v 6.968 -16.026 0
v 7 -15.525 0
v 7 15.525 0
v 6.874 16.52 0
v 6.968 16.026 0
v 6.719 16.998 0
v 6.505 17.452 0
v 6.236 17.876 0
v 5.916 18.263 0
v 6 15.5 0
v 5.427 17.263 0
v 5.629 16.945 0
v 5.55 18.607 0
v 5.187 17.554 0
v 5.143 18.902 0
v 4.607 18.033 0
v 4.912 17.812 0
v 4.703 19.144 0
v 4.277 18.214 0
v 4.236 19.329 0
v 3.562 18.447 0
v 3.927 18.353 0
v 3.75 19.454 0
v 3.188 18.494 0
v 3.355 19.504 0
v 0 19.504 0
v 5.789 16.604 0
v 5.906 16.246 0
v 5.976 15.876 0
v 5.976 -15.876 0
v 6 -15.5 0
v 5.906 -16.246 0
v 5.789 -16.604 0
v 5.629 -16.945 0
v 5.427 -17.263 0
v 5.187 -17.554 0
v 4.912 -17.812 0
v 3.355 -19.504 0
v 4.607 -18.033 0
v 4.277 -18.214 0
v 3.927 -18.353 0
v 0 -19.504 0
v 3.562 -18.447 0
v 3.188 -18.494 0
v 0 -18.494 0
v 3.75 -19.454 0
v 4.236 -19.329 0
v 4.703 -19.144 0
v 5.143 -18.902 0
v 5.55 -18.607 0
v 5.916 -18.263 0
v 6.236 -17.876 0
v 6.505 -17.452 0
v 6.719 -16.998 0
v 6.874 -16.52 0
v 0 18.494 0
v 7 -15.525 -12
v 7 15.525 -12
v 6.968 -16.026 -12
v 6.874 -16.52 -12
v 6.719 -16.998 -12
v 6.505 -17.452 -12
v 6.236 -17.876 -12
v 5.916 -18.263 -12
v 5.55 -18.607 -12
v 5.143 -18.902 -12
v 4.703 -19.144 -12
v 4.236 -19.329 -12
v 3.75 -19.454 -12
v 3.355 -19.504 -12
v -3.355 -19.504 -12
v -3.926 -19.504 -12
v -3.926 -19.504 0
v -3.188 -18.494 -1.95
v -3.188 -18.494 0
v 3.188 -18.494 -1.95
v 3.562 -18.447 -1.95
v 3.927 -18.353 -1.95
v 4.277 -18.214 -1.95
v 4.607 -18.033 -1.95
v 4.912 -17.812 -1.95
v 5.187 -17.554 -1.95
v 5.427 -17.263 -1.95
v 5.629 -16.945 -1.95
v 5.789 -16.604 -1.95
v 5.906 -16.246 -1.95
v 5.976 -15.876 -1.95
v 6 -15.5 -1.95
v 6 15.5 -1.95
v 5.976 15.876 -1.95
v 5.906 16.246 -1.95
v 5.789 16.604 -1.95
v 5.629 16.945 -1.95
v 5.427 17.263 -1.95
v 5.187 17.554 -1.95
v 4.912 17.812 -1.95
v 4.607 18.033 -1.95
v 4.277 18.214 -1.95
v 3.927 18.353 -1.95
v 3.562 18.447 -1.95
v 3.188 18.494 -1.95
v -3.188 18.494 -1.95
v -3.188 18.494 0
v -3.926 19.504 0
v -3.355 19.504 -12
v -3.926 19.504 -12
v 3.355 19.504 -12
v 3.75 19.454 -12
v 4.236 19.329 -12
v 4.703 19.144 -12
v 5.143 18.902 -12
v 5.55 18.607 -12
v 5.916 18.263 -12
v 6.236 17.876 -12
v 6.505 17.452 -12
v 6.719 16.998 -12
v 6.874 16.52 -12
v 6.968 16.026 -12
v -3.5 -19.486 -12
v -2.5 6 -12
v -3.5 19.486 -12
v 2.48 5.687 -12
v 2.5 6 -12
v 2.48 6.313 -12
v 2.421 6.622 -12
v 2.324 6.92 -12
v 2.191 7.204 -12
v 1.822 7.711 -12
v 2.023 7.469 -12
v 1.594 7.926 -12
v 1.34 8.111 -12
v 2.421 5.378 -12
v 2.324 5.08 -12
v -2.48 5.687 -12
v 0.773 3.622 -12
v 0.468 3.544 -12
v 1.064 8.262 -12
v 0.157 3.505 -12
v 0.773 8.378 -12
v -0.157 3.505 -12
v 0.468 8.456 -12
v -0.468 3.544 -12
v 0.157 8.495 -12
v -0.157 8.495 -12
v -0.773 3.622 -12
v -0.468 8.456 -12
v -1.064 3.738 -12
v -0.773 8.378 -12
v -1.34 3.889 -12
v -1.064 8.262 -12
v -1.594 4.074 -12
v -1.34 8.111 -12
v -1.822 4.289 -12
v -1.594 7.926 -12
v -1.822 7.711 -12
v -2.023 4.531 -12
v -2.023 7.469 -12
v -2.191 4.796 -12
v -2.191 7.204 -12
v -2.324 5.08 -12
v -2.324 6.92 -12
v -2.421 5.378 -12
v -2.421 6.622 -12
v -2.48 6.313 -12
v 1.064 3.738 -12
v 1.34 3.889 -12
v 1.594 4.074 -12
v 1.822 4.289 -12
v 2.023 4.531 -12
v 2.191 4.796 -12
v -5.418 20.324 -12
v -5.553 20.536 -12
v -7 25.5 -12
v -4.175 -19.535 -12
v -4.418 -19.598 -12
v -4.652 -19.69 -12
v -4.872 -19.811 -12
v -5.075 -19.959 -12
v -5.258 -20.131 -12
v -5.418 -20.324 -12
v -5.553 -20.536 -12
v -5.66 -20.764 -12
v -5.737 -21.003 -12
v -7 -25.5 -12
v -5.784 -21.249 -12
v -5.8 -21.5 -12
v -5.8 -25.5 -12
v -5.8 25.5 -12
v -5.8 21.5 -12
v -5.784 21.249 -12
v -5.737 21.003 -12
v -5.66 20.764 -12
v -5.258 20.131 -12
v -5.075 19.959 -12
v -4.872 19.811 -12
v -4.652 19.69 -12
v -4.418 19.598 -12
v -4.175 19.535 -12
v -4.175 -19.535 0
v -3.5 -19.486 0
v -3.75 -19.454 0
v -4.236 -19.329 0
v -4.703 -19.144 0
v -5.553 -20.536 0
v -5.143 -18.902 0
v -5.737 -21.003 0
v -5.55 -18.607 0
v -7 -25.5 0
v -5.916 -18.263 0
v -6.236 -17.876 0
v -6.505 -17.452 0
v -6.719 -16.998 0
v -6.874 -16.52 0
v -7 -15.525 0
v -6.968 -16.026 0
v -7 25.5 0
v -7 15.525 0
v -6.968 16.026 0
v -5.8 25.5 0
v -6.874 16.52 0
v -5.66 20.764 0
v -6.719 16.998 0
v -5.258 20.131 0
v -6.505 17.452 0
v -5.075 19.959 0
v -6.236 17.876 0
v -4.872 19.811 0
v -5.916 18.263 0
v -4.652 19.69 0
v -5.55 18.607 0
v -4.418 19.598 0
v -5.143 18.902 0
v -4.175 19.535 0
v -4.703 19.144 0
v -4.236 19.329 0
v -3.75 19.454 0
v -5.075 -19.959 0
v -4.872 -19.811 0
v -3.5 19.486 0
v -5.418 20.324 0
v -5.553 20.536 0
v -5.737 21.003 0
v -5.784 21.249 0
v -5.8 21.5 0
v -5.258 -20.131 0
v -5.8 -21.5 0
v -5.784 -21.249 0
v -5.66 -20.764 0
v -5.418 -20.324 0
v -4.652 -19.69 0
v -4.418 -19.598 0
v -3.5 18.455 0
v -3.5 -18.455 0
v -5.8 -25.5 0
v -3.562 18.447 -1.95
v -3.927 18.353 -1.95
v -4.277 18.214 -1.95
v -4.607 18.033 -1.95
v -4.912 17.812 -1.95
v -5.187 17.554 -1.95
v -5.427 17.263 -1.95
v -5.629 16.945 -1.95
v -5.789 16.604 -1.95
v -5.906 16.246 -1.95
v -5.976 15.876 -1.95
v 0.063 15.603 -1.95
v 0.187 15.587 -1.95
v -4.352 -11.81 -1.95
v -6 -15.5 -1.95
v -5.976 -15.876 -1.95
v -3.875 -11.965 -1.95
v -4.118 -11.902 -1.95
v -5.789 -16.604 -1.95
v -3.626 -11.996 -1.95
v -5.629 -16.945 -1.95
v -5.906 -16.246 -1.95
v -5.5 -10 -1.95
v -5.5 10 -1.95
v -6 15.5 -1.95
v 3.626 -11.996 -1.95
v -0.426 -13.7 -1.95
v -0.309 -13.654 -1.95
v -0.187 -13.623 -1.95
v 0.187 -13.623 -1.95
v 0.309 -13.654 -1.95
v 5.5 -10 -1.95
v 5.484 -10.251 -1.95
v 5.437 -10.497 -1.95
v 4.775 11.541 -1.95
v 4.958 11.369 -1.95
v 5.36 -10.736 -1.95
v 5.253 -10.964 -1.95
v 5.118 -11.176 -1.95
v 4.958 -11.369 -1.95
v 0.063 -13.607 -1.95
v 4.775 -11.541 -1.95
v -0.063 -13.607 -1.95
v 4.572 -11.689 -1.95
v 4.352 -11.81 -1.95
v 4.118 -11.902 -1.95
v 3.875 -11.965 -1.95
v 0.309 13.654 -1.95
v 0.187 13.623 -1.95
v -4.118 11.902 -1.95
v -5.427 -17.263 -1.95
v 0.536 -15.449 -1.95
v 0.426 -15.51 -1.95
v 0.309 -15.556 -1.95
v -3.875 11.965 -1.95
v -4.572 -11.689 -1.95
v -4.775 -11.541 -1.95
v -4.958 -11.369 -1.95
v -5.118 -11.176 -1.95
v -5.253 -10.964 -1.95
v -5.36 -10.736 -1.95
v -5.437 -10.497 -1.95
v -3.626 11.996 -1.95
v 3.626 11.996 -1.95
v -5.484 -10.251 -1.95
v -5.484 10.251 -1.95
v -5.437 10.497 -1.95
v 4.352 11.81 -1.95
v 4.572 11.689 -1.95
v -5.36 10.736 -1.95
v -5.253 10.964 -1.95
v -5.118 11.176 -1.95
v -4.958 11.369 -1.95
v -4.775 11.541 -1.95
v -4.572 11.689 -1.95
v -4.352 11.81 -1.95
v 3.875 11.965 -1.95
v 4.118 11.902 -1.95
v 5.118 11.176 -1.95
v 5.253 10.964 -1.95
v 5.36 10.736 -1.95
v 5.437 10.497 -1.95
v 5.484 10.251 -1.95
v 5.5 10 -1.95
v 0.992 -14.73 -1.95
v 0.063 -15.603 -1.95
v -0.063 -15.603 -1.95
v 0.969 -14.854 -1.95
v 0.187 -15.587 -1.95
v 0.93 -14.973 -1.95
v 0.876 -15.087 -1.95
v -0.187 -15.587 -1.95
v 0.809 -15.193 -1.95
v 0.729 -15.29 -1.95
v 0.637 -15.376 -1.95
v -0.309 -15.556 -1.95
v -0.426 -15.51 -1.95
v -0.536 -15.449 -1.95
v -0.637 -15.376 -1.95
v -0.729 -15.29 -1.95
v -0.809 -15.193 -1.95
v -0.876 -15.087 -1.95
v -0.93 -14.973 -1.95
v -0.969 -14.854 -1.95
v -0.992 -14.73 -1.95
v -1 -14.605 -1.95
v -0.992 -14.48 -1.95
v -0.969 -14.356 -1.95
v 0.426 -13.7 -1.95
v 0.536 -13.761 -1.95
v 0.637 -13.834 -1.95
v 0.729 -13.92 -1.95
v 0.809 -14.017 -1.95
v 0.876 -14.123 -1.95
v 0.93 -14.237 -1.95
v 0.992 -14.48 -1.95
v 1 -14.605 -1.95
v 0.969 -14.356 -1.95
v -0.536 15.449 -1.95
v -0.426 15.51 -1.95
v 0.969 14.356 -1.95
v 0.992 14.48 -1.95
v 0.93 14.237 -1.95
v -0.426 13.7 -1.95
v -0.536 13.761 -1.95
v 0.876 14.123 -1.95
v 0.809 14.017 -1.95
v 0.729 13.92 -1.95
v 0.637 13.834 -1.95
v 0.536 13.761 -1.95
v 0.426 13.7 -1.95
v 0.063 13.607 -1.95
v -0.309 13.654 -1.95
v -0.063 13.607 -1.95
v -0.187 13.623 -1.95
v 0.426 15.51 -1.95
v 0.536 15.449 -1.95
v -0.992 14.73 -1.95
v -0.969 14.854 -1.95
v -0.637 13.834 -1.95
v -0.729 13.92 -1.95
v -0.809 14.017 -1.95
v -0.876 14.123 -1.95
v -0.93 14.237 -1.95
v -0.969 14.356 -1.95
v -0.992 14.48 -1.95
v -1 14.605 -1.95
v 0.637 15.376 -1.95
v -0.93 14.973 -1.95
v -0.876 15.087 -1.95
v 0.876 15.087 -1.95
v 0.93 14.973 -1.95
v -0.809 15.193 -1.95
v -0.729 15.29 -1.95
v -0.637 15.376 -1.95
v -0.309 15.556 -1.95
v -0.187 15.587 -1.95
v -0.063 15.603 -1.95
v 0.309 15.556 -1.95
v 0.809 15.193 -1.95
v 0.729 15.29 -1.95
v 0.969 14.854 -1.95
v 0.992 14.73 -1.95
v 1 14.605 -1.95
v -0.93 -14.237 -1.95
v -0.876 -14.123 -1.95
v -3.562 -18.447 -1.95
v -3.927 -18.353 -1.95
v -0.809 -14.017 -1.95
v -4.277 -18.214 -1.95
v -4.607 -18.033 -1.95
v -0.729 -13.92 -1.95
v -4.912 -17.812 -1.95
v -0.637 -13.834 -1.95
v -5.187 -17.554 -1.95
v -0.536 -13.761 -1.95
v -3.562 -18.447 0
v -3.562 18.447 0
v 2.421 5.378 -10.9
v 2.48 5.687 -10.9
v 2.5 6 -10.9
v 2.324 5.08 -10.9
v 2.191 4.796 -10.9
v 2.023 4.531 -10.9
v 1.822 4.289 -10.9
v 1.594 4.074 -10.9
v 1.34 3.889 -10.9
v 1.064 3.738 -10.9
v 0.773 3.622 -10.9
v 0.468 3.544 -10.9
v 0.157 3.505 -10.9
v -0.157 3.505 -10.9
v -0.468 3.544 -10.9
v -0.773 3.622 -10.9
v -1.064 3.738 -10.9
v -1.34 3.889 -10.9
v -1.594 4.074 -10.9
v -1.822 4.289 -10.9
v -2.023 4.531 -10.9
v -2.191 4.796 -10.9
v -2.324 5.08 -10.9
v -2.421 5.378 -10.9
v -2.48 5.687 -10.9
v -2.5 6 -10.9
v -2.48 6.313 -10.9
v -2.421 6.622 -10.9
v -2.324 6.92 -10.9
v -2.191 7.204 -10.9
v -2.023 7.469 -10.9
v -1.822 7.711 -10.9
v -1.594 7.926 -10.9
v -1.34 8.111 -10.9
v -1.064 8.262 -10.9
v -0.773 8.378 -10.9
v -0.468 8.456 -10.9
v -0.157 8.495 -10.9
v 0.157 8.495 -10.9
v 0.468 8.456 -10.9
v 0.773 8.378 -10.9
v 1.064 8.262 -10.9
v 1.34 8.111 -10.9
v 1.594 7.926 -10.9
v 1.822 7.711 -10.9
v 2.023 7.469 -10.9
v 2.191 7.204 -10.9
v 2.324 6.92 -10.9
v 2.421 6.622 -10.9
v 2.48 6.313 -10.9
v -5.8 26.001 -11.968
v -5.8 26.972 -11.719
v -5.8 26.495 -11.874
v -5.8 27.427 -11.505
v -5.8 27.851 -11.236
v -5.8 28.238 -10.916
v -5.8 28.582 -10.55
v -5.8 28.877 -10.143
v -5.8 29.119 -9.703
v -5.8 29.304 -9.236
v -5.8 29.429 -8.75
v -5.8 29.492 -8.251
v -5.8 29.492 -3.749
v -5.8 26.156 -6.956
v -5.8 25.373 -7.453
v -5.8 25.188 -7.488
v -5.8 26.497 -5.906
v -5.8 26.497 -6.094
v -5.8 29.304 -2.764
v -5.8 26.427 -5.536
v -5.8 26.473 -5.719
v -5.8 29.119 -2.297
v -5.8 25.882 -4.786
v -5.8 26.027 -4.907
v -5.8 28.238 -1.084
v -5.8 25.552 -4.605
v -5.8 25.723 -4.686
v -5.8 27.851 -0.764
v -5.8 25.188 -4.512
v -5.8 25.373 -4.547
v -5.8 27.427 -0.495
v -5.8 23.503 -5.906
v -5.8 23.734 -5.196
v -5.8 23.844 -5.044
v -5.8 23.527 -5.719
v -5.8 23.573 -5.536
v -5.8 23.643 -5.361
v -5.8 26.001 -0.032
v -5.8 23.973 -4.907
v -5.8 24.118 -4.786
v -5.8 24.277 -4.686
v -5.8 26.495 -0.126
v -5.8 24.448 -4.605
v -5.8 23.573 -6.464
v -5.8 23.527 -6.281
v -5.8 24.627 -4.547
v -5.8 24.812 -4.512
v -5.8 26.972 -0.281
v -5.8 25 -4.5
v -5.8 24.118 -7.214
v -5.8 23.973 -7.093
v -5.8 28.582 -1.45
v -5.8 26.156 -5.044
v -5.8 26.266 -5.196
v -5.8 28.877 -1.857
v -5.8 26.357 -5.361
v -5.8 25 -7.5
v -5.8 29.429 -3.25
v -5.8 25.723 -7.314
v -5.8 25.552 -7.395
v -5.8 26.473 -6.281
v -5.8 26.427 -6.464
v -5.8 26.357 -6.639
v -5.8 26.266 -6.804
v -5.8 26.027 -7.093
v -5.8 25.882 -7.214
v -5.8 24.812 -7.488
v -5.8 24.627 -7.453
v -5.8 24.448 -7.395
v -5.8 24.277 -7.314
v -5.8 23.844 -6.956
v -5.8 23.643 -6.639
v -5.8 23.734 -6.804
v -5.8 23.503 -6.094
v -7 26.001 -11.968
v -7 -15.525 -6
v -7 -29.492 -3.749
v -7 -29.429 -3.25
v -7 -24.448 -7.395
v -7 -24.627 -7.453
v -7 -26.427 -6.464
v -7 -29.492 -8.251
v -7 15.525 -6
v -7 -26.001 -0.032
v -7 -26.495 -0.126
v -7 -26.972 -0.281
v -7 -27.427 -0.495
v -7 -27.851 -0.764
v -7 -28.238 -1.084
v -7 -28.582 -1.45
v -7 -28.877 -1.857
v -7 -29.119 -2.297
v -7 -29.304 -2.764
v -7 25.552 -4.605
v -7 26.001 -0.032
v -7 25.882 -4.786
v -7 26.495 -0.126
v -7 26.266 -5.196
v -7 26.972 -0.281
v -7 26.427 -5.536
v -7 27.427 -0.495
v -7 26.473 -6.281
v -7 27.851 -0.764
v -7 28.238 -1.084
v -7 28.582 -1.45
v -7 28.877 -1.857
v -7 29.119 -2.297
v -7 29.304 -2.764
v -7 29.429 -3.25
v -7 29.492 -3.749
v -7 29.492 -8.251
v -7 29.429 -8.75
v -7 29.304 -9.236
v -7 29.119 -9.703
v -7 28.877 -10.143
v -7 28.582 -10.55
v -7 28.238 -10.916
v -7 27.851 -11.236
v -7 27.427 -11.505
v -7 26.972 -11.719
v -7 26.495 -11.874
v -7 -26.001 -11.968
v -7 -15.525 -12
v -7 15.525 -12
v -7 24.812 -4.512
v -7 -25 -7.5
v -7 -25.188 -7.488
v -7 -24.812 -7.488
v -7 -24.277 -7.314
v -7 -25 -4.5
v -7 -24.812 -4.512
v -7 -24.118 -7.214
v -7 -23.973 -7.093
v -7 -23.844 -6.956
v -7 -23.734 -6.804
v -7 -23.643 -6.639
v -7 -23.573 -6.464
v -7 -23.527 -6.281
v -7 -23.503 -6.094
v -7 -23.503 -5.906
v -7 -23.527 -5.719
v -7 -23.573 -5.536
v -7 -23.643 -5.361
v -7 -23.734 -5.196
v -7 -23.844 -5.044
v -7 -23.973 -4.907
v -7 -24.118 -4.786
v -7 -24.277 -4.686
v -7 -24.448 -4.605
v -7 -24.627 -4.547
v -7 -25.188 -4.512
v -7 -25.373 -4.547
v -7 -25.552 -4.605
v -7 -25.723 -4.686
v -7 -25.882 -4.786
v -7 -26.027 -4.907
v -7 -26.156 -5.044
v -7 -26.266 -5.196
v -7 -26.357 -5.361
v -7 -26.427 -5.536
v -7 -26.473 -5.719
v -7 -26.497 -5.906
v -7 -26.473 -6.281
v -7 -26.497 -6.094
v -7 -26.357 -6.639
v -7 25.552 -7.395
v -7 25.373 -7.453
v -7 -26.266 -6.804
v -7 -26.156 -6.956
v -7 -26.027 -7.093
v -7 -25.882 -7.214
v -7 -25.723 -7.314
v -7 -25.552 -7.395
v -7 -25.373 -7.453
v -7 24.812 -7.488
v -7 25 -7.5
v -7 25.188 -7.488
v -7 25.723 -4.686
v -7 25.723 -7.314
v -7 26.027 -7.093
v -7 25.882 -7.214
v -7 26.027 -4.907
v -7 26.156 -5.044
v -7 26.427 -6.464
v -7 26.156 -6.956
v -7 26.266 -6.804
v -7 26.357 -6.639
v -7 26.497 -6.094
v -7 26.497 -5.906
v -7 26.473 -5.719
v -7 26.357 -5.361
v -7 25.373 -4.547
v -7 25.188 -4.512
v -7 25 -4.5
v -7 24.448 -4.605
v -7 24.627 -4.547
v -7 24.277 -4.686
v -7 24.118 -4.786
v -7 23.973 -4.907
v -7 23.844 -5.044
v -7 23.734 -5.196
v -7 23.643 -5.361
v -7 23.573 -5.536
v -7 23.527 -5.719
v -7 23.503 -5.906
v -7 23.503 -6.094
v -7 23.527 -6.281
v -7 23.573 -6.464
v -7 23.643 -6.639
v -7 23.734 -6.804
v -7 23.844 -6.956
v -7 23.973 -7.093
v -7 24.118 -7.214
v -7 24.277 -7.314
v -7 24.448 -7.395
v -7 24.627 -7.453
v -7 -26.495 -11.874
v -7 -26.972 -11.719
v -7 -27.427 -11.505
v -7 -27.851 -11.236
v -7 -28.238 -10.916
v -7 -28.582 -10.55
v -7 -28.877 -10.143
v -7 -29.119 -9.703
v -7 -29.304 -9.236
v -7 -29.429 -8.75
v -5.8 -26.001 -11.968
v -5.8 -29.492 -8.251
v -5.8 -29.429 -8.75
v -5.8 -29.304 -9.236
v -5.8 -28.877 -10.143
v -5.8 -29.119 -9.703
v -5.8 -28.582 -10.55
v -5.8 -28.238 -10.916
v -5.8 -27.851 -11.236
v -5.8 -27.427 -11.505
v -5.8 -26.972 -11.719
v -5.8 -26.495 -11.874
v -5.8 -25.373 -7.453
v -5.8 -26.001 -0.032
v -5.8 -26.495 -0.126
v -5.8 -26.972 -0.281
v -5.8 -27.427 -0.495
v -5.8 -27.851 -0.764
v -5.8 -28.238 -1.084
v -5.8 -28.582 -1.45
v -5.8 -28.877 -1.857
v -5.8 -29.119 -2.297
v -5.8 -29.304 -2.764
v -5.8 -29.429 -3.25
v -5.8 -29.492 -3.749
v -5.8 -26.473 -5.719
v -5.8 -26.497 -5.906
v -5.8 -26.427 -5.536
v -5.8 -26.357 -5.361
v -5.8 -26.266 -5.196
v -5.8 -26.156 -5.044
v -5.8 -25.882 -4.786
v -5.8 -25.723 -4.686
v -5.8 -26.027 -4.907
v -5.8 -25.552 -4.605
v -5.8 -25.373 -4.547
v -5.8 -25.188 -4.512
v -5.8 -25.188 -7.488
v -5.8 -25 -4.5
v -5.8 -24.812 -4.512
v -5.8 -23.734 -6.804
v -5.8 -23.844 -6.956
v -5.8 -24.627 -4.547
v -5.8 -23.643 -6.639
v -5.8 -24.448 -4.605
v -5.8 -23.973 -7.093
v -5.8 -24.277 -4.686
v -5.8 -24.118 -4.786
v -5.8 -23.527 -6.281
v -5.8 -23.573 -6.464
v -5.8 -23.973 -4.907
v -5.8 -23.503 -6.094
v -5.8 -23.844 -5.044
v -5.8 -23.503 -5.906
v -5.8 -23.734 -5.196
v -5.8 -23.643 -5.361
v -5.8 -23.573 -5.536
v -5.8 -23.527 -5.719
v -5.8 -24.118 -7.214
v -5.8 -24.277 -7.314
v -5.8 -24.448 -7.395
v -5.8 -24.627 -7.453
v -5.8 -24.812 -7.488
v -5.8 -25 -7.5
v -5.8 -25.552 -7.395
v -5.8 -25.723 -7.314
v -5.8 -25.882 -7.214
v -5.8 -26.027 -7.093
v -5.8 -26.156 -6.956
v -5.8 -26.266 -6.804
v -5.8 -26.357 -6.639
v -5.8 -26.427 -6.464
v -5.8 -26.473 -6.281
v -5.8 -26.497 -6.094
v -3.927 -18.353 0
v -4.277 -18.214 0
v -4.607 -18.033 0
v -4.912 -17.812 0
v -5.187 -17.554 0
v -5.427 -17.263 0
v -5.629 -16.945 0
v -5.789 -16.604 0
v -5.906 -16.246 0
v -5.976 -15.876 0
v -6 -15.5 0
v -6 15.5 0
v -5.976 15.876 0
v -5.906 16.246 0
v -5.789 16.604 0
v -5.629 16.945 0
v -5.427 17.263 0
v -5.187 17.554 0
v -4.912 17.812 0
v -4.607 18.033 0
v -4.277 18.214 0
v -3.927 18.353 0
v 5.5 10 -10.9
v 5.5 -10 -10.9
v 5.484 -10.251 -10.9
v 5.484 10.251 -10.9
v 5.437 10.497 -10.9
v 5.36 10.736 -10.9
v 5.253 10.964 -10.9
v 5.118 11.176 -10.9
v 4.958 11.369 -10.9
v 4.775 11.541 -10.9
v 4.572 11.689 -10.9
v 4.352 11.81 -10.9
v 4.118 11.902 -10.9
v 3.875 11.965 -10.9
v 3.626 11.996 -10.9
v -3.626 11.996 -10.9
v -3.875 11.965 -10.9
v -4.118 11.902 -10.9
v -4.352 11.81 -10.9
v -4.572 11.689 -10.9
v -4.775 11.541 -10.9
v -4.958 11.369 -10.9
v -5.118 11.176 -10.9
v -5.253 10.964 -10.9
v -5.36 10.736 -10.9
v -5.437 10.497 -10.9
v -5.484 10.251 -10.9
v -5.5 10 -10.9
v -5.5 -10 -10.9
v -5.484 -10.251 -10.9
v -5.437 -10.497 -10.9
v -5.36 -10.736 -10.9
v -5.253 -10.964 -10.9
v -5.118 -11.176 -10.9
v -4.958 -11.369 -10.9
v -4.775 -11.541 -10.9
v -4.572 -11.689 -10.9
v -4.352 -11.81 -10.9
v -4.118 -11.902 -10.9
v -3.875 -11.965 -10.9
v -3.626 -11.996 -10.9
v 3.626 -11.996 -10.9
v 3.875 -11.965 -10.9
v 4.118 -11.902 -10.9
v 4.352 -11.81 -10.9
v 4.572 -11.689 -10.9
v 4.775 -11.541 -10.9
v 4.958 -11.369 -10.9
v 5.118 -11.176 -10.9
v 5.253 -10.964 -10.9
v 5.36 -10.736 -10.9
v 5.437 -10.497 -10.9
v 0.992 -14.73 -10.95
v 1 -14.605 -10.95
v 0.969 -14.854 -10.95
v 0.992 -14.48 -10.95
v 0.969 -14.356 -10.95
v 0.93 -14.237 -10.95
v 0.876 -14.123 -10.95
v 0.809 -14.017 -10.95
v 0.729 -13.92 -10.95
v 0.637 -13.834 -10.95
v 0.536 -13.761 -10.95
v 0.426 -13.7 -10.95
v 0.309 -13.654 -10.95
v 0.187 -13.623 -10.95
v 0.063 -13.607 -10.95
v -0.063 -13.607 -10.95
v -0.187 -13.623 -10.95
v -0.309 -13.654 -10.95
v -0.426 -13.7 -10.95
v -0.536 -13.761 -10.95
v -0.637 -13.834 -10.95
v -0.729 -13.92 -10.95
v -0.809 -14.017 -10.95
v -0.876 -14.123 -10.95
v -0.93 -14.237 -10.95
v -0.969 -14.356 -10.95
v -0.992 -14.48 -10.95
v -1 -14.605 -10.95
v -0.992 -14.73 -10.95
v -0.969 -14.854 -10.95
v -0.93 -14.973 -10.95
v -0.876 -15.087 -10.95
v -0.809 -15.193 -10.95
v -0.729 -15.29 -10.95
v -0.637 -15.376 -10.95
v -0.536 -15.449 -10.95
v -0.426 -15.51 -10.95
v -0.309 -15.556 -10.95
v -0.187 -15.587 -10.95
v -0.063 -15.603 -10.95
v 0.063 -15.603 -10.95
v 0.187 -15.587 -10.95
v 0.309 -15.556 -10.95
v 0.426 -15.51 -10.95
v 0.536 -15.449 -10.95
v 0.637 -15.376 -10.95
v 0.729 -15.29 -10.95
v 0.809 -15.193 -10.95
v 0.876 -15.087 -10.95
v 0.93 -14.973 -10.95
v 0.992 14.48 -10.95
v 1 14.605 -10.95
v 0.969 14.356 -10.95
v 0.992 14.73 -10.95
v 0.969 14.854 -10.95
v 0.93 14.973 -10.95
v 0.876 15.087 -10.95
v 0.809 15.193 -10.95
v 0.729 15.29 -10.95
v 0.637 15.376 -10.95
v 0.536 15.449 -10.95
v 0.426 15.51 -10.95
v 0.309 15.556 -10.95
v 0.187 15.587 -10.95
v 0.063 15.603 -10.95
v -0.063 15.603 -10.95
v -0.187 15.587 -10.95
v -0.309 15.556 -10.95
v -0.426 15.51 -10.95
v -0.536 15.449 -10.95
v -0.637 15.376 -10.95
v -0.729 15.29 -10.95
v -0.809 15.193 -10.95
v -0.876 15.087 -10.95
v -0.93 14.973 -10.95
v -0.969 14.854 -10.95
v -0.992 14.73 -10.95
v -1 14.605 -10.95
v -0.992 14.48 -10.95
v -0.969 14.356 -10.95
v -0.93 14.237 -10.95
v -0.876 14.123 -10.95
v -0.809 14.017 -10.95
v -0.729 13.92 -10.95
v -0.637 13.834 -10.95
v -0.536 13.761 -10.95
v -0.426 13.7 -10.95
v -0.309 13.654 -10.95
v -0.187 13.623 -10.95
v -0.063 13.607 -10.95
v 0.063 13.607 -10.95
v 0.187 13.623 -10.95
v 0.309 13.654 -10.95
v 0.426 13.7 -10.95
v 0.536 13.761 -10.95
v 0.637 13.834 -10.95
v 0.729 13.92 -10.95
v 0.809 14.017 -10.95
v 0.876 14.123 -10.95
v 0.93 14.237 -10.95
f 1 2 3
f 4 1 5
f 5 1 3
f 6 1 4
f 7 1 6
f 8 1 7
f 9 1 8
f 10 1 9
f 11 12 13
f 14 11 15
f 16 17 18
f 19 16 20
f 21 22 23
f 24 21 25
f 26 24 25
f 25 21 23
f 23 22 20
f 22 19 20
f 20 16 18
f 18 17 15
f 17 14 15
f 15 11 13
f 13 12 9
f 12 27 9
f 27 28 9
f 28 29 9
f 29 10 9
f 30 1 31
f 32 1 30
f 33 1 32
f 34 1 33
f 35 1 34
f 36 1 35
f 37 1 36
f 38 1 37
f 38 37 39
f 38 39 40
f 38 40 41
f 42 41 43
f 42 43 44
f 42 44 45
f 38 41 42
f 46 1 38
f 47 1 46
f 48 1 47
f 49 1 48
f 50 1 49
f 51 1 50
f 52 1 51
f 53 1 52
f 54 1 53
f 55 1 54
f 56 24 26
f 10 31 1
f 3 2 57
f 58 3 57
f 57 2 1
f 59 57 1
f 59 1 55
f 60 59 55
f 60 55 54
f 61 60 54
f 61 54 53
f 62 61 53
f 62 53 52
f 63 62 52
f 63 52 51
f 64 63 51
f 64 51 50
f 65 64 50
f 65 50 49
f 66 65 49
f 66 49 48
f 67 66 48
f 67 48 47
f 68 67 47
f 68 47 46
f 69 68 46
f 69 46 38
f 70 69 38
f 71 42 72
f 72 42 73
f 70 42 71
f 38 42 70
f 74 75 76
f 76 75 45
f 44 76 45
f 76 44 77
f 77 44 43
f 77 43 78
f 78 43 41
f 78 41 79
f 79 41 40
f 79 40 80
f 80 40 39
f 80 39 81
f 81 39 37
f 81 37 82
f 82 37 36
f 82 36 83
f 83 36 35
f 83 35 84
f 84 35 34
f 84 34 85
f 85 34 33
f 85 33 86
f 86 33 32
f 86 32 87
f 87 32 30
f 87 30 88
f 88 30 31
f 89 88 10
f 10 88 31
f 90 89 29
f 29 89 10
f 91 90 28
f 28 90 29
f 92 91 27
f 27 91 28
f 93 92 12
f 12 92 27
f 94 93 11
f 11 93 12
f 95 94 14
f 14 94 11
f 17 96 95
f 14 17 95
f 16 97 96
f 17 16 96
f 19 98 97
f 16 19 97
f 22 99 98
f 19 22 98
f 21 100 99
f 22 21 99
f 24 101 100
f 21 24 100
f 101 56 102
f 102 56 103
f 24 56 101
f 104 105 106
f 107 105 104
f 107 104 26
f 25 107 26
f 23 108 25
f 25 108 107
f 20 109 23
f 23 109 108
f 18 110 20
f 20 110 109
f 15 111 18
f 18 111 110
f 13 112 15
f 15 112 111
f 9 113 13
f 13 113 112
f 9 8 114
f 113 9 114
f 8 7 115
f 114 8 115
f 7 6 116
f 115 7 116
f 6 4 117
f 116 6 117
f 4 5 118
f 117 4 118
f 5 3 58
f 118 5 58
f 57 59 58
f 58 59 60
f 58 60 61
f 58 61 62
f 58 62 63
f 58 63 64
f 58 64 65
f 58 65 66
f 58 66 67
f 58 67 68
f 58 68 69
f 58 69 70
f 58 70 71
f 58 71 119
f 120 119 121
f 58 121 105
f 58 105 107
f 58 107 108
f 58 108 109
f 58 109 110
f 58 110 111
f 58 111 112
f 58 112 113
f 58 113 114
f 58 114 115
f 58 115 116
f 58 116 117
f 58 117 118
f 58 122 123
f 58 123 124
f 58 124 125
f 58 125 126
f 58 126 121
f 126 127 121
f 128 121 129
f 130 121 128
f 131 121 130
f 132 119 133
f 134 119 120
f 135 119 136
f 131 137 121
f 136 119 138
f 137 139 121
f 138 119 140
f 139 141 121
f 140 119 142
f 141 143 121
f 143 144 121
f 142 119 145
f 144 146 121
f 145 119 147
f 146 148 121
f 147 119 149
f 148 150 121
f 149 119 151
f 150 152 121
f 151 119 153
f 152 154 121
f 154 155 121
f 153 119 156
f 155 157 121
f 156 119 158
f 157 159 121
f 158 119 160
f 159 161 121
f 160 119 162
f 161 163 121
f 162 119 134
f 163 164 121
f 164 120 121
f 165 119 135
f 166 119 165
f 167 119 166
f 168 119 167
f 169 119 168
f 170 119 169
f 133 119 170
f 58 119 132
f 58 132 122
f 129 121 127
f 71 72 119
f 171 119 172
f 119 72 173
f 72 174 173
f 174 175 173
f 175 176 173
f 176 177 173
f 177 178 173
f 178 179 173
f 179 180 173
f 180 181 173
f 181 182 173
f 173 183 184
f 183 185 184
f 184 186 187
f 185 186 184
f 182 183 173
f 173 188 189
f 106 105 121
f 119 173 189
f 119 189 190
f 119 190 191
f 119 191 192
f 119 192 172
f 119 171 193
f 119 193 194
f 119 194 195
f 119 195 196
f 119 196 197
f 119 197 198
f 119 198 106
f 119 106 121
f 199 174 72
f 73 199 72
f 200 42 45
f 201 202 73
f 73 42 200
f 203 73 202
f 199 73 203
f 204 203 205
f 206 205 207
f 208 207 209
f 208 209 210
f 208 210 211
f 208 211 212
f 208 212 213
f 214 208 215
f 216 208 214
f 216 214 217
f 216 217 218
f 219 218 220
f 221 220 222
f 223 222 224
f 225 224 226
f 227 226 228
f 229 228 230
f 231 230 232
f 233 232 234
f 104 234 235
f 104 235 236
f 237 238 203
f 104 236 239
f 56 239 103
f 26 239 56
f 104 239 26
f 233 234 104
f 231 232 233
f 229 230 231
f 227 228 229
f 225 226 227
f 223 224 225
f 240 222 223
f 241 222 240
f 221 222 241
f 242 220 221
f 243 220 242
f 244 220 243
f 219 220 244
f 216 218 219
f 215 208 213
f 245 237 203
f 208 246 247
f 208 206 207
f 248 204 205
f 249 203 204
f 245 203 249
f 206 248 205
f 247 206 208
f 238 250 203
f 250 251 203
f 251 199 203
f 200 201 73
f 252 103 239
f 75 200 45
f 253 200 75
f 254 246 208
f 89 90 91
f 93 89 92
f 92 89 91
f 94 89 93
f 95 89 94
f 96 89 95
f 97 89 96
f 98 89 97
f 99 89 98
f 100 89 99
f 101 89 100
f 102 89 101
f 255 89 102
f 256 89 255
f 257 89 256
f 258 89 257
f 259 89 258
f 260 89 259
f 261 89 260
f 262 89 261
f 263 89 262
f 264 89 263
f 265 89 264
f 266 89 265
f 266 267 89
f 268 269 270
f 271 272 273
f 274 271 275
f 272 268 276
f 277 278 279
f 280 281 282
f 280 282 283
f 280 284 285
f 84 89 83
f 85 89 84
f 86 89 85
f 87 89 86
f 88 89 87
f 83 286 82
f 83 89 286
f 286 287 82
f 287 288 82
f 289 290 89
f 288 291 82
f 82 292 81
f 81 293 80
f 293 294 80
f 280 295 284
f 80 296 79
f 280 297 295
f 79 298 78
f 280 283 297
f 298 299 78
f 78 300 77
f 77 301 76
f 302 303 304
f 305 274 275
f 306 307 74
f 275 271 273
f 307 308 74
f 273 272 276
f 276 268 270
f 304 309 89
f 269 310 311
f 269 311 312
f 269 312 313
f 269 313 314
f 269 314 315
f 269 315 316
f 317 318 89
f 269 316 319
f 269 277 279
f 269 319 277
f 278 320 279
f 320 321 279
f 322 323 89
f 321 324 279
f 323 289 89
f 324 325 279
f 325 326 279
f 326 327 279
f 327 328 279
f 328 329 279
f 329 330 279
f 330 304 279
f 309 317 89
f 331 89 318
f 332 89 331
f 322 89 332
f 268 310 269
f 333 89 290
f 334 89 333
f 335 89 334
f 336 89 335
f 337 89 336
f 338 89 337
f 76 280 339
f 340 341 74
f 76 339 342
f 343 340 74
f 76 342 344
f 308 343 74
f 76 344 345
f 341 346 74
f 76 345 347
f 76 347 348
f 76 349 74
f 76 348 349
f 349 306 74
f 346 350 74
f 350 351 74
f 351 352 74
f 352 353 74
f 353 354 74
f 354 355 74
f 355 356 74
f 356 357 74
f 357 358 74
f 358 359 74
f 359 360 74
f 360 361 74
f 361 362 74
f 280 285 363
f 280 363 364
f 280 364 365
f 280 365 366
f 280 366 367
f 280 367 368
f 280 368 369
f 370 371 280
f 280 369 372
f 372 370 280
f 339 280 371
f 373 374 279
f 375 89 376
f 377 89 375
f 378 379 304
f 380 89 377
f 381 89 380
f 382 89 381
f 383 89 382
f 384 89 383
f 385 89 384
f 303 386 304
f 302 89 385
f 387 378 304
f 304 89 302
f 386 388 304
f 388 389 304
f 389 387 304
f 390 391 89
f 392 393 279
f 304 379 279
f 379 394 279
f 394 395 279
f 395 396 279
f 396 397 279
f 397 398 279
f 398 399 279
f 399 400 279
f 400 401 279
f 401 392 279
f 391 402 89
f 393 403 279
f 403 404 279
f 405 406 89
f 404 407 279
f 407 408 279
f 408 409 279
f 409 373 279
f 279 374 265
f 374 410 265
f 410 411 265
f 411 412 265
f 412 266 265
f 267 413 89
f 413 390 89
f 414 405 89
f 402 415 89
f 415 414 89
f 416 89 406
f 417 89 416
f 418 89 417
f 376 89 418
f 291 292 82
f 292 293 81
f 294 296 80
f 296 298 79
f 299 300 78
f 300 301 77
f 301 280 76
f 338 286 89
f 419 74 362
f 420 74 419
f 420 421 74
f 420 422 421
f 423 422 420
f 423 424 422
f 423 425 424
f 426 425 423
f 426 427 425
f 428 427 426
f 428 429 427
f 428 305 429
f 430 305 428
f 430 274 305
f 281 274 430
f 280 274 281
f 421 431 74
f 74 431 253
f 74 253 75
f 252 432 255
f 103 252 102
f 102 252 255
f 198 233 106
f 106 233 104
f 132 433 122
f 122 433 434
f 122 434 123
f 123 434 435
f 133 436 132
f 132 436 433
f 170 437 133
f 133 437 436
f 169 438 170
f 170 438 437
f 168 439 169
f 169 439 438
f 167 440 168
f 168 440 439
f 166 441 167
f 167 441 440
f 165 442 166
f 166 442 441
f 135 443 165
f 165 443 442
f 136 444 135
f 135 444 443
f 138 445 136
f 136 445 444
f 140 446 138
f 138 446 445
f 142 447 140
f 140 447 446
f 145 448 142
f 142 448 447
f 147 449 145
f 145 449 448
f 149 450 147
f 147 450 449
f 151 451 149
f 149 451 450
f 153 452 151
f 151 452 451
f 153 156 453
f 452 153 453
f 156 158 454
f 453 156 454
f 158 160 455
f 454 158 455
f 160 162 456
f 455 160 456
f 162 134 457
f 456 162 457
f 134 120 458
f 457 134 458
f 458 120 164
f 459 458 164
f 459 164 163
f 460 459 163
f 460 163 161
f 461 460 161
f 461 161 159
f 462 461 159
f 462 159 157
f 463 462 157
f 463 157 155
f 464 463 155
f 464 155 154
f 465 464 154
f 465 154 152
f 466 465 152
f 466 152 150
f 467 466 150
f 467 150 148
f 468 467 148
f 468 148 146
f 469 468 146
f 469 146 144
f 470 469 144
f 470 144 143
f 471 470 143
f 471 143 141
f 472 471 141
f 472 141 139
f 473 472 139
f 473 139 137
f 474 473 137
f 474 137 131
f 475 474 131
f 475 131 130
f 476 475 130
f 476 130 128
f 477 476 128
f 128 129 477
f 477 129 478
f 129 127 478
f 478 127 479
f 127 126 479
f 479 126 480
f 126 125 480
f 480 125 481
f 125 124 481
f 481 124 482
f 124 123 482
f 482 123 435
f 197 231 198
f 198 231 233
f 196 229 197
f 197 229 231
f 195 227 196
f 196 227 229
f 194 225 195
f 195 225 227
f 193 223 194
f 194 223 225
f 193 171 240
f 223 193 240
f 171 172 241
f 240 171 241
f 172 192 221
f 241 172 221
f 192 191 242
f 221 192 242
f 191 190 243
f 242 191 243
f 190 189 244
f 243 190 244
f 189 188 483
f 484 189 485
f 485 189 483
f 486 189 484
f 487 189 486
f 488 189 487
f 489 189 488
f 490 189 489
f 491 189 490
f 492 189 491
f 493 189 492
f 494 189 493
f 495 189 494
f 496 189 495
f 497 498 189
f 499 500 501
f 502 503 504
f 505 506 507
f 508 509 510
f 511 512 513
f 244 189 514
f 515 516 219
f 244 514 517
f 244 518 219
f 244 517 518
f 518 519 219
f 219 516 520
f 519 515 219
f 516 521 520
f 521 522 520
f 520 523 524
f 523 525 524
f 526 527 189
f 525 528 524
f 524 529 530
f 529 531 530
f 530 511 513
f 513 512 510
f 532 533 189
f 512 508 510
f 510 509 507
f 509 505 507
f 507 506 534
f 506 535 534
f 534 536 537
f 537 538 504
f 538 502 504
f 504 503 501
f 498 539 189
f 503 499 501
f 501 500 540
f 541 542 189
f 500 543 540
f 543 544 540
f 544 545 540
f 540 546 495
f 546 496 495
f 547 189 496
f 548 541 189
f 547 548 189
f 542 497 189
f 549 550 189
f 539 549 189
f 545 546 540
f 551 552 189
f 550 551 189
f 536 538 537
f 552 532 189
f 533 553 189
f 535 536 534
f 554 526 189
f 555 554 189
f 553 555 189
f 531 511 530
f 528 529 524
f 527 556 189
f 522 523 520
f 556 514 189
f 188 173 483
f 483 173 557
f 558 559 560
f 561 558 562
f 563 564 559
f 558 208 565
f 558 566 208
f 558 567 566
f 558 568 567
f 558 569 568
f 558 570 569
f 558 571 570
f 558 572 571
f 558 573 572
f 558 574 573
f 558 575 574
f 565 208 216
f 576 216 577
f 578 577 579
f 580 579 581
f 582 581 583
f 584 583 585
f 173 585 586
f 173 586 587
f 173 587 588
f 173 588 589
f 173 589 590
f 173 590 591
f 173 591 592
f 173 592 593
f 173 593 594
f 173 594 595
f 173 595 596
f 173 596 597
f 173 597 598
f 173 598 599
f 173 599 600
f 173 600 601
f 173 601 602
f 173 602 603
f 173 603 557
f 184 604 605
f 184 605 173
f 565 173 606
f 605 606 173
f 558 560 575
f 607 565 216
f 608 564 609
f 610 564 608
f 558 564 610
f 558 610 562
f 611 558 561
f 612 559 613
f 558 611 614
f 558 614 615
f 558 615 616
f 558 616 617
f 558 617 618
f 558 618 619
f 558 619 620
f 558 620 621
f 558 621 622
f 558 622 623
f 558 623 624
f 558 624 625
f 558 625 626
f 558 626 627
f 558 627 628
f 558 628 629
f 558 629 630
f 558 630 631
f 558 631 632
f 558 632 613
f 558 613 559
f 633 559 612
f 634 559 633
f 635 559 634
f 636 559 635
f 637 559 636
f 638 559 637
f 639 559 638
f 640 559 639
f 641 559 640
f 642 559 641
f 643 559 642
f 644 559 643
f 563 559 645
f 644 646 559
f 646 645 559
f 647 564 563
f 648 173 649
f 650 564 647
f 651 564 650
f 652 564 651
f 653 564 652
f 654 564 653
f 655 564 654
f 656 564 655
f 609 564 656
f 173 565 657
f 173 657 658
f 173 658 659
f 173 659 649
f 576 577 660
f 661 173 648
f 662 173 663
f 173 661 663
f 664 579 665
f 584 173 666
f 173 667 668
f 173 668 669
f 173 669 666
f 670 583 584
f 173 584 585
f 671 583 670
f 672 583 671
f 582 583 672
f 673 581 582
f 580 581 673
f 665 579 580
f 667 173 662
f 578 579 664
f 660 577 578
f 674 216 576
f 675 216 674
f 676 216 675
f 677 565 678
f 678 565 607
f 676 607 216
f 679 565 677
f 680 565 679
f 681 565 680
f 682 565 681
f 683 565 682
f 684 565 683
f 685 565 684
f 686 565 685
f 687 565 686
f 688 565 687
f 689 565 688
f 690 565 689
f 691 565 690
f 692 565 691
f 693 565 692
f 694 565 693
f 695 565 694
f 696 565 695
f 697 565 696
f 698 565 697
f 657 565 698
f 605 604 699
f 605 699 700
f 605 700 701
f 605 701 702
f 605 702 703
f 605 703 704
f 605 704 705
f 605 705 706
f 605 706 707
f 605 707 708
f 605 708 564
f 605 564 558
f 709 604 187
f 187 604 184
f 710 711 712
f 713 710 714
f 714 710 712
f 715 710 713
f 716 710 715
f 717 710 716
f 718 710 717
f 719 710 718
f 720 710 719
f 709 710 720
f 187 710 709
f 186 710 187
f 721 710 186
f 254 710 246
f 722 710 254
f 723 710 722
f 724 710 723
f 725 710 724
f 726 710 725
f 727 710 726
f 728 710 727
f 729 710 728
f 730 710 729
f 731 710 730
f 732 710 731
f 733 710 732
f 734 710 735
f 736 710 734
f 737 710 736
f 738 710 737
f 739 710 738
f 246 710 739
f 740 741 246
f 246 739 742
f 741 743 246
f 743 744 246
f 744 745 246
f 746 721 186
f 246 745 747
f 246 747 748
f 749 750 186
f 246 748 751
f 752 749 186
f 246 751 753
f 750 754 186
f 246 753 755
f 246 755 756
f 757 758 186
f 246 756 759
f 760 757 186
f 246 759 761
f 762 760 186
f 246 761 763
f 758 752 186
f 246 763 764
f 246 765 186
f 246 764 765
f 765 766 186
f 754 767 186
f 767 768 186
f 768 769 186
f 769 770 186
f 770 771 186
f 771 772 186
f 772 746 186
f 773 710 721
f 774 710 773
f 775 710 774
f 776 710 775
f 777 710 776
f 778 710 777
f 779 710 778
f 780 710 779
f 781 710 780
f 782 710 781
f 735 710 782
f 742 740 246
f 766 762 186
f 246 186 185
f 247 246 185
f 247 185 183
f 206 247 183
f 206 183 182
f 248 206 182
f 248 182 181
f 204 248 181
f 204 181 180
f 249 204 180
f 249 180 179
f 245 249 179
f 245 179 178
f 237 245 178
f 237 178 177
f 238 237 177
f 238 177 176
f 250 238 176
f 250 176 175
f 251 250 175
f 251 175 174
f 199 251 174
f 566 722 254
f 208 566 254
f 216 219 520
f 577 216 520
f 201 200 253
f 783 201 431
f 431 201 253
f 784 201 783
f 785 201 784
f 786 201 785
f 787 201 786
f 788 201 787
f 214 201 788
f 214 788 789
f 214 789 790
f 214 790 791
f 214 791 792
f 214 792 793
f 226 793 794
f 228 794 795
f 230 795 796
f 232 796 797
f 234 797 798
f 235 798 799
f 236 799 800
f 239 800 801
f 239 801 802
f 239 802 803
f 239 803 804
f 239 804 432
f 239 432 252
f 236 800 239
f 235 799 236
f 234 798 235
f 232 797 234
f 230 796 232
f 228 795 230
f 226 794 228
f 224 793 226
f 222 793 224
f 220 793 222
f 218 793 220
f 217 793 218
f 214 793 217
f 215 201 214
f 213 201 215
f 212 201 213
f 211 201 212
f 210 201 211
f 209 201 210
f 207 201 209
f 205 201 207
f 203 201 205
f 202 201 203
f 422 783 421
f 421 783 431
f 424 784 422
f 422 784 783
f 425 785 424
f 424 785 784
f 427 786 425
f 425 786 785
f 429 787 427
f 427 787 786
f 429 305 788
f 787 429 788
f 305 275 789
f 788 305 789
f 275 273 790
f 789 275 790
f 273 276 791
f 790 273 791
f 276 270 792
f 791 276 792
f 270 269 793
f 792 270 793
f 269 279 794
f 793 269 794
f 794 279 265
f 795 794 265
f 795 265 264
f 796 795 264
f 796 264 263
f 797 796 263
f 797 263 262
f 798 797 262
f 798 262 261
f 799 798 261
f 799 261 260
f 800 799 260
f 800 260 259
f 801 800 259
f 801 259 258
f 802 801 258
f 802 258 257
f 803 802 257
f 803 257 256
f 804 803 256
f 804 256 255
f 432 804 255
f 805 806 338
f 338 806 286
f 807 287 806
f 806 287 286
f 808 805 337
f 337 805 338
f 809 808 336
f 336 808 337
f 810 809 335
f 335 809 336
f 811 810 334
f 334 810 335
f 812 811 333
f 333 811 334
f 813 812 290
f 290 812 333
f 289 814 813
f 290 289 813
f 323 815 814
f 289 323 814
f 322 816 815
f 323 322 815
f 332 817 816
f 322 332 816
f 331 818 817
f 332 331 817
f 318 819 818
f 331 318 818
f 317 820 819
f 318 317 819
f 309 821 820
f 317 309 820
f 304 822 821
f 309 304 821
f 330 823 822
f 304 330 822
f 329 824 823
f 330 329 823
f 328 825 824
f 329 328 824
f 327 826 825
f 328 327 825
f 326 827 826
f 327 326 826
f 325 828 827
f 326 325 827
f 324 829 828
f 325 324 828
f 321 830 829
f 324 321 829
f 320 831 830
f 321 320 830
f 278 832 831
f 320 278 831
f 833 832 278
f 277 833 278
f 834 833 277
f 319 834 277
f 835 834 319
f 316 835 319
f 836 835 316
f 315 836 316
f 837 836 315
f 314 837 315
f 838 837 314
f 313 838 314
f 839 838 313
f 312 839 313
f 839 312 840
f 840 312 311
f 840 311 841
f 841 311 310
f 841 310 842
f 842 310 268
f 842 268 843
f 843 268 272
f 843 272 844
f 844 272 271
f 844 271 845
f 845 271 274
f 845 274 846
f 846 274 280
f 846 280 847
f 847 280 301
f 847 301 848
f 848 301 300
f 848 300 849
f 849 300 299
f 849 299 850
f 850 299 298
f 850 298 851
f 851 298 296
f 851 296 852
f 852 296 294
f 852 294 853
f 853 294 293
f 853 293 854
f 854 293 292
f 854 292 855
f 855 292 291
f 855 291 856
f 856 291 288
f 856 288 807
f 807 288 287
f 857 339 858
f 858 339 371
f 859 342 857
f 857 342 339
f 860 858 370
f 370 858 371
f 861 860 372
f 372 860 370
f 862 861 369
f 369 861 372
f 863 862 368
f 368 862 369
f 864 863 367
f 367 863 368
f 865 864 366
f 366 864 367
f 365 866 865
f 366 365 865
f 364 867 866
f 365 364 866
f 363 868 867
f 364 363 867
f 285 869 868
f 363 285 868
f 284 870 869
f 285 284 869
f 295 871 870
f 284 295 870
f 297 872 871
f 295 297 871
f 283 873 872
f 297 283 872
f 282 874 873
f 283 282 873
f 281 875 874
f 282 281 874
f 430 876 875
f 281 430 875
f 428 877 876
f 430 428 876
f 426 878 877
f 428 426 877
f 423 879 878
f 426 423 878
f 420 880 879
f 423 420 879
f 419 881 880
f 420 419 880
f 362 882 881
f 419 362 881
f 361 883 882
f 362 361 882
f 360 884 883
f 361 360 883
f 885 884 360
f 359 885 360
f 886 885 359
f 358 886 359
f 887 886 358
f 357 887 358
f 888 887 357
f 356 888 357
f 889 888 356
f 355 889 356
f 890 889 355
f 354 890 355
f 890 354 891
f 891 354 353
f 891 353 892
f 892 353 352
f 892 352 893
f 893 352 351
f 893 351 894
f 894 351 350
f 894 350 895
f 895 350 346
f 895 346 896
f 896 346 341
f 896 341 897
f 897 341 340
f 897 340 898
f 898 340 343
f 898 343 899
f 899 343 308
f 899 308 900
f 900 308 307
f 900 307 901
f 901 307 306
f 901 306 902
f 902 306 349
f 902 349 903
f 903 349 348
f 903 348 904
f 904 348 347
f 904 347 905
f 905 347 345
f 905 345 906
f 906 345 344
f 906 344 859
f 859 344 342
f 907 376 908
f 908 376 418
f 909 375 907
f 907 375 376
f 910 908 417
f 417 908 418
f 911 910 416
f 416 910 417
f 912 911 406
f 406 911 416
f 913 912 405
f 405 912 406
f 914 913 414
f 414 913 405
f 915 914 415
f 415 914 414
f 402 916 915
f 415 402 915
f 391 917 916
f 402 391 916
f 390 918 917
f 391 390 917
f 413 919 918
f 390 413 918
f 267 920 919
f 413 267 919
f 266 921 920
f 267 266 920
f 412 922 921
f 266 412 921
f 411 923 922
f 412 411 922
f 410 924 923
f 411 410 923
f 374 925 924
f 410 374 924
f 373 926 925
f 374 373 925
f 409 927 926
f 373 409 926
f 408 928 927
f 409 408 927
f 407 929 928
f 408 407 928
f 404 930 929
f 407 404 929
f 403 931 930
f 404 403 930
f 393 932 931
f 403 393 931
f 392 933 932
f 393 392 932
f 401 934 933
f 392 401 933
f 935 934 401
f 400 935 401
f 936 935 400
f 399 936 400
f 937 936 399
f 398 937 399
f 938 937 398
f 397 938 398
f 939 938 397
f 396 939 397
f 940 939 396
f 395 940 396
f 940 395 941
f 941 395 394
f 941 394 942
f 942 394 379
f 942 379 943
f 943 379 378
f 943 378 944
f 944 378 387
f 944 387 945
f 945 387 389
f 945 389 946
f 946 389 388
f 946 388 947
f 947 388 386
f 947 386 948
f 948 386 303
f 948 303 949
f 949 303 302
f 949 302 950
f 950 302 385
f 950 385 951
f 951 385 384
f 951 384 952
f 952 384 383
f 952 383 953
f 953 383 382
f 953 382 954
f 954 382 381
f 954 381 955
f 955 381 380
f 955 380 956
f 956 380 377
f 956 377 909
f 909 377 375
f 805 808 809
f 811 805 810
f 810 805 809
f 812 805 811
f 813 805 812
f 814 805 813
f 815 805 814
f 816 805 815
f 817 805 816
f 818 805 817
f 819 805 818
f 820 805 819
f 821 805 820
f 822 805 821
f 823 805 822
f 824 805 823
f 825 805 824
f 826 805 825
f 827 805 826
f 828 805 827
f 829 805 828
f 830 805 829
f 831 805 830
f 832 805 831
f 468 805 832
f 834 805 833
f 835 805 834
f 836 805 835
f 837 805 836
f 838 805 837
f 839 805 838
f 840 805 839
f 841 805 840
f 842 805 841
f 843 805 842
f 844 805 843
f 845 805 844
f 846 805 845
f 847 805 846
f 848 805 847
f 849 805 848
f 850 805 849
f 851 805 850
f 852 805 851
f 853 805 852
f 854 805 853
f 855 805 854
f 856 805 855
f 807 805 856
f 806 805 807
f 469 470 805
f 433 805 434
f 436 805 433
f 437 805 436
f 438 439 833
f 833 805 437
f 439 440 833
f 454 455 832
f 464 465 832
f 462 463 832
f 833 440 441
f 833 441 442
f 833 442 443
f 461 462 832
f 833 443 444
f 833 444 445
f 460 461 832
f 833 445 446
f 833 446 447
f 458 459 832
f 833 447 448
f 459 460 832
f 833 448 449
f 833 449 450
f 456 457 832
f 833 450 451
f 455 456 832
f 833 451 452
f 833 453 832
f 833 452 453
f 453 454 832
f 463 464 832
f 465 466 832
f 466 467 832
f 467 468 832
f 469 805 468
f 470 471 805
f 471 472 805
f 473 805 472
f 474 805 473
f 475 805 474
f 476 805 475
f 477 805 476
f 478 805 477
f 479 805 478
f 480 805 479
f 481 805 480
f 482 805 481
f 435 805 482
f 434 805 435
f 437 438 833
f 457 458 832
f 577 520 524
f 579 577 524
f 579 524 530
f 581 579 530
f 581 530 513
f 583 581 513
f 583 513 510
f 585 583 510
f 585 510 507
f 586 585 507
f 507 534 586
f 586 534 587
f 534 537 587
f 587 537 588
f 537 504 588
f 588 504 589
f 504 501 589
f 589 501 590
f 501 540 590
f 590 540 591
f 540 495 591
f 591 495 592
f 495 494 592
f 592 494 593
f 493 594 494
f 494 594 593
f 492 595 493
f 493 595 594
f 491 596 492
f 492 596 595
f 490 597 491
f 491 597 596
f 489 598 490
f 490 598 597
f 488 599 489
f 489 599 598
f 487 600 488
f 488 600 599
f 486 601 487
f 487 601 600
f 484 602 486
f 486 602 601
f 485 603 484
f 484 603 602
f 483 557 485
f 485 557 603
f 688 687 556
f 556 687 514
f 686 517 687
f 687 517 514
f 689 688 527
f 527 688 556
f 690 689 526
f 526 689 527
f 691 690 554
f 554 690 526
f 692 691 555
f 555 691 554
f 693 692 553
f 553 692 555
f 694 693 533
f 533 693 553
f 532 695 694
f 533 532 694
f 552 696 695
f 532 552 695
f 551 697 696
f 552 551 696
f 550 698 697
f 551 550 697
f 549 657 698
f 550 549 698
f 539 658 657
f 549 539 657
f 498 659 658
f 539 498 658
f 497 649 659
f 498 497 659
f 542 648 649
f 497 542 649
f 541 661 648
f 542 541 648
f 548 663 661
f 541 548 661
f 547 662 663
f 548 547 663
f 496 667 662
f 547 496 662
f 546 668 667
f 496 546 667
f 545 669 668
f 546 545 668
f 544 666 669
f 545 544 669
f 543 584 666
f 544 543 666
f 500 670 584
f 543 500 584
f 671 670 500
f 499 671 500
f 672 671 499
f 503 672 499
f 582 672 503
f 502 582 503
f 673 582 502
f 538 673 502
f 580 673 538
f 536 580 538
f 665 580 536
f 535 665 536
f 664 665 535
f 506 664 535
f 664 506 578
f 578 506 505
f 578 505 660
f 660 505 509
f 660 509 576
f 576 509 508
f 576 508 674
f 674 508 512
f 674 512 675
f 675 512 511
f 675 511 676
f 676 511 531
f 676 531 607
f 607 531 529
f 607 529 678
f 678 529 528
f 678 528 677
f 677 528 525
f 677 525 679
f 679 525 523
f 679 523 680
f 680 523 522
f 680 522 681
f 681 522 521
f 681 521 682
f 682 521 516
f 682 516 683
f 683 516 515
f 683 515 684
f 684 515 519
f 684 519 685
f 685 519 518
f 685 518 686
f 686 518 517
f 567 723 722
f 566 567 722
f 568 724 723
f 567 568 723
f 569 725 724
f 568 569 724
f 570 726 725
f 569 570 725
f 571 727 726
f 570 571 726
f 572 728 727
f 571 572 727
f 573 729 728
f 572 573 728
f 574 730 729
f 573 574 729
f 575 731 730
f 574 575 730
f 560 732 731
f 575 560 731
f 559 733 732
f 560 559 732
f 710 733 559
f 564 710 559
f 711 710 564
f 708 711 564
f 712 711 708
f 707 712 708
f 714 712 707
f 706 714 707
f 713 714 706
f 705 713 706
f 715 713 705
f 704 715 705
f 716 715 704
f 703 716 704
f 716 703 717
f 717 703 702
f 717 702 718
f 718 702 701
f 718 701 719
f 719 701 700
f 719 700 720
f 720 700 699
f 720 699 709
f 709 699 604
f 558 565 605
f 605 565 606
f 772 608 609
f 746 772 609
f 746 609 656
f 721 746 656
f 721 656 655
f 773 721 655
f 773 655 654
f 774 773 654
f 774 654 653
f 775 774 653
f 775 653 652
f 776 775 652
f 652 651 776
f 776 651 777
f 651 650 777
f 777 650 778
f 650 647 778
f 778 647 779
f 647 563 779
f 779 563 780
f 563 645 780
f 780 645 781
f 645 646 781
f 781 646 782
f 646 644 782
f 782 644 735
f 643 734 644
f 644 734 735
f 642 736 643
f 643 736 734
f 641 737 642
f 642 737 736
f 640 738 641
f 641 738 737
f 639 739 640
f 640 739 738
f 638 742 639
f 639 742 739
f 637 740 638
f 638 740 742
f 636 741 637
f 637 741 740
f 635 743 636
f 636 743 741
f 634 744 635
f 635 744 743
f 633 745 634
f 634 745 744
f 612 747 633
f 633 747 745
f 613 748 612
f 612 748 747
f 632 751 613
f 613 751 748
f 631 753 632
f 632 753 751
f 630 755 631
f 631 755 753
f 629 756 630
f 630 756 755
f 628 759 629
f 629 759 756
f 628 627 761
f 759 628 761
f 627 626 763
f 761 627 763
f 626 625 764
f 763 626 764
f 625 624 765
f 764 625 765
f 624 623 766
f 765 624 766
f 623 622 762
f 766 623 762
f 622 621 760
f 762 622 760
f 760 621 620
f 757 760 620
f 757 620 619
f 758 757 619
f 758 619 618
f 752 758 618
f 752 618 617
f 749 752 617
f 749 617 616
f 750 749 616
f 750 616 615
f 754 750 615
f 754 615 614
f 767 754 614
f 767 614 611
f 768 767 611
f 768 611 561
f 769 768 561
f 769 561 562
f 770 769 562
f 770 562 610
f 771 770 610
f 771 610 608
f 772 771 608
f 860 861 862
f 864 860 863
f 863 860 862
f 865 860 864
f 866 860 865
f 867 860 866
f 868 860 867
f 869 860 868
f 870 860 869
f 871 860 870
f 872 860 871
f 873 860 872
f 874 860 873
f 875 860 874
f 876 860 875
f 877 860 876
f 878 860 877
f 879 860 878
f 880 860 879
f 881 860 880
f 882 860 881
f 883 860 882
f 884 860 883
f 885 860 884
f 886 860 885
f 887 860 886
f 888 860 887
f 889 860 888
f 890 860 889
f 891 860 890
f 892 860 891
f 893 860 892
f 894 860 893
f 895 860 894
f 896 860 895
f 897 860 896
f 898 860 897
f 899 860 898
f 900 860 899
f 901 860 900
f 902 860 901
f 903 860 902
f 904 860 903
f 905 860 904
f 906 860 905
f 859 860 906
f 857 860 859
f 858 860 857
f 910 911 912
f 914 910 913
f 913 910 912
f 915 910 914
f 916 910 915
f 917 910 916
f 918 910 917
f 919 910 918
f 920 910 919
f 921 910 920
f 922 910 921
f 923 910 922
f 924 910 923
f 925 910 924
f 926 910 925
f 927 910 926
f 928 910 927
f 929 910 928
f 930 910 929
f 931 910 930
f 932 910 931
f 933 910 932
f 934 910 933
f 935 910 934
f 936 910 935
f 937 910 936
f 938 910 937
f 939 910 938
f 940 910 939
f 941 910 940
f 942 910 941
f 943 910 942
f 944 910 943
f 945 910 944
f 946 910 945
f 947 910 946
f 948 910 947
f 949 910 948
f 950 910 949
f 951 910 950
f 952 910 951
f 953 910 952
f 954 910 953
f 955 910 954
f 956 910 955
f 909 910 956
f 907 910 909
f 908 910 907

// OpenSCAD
// with thanks to HAD...
module cylinders(points, radius, height)
{
    for (p=points){
        translate(p) cylinder(r=radius, h=height, center=true);
    }
}

// box, rounded in 2 dimensions but flat top+bottom
// is centred
module round2box(size, radius)
{
    points=[ [-size[0]/2+radius, -size[1]/2+radius, 0],
             [-size[0]/2+radius, size[1]/2-radius, 0],
             [size[0]/2-radius, -size[1]/2+radius, 0],
             [size[0]/2-radius, size[1]/2-radius, 0]];
    
    hull() cylinders(points, radius, size[2]);
}

// bracket dimensions
epsilon=0.05;
pcbrad=3;
fillet=2;
wall=1;
tablen=10;
tabthick=1.2;
outerrad=pcbrad+wall;
pcb=[12, 37, 2];  // PCB space
clearance=[11, 24, 9];  // component-area
outer=[pcb[0]+2*wall, pcb[1]+2*wall, clearance[2]+3];  // casing size
tabs=[outer[2], outer[1]+2*tablen, outer[0]/2];
tabfillet=[outer[0], tablen+2*outerrad, outer[2]+1];
screwpilot=2;
screw=3;
screwspace=1.15*25.4;
cable=5;

$fn=50;
$fs=epsilon;

// assemble, upside-down for ease of FDM printing
rotate(a=[0, 180, 0]) difference()
{
    union()
    {
        // datum: centre of bottom face
        translate([0, 0, outer[2]/2])
            // the main casing
            round2box([outer[0], outer[1]+epsilon, outer[2]], outerrad);

        // side tabs - overly thick to make room for fillet
        translate([outer[0]/2-tabs[2]/2, 0, outer[2]/2]) rotate(a=[0, 90, 0])
            round2box(tabs, outerrad);
    }

    // space for the PCBA
    translate([0, 0, -epsilon])
    {
        // datum: bottom centre of the PCB
        
        // pcb space
        translate([0, 0, pcb[2]/2])
            round2box(pcb, pcbrad);

        // component-area clearance
        translate([0, 0, clearance[2]/2+pcb[2]-epsilon])
            // cube(clearance, true);
            round2box(clearance, fillet);
        
        // cable clearance
        translate([0, clearance[1]/4, outer[2]/2])
            cylinder(d=cable, h=outer[2]+1, center=true);
        
        // PCB-screw pilot holes
        translate([0, 0, outer[2]/2-1])
            cylinders([[0, screwspace/2, 0], [0, -screwspace/2, 0]], screwpilot/2, outer[2]);

        
    }

    // fillets from backs of end tabs
    translate([-tabthick, -(tabfillet[1]+outer[1])/2, tabfillet[2]/2-epsilon])
            round2box(tabfillet, fillet);
    translate([-tabthick, (tabfillet[1]+outer[1])/2, tabfillet[2]/2-epsilon])
            round2box(tabfillet, fillet);
    
    // screw clearance holes in tabs
    translate([outer[0]/2, 0, outer[2]/2]) rotate(a=[0, 90, 0])
        cylinders([[0, (outer[1]+tablen+1)/2, 0], [0, -(outer[1]+tablen+1)/2, 0]], screw/2, outer[0]/2);
}
